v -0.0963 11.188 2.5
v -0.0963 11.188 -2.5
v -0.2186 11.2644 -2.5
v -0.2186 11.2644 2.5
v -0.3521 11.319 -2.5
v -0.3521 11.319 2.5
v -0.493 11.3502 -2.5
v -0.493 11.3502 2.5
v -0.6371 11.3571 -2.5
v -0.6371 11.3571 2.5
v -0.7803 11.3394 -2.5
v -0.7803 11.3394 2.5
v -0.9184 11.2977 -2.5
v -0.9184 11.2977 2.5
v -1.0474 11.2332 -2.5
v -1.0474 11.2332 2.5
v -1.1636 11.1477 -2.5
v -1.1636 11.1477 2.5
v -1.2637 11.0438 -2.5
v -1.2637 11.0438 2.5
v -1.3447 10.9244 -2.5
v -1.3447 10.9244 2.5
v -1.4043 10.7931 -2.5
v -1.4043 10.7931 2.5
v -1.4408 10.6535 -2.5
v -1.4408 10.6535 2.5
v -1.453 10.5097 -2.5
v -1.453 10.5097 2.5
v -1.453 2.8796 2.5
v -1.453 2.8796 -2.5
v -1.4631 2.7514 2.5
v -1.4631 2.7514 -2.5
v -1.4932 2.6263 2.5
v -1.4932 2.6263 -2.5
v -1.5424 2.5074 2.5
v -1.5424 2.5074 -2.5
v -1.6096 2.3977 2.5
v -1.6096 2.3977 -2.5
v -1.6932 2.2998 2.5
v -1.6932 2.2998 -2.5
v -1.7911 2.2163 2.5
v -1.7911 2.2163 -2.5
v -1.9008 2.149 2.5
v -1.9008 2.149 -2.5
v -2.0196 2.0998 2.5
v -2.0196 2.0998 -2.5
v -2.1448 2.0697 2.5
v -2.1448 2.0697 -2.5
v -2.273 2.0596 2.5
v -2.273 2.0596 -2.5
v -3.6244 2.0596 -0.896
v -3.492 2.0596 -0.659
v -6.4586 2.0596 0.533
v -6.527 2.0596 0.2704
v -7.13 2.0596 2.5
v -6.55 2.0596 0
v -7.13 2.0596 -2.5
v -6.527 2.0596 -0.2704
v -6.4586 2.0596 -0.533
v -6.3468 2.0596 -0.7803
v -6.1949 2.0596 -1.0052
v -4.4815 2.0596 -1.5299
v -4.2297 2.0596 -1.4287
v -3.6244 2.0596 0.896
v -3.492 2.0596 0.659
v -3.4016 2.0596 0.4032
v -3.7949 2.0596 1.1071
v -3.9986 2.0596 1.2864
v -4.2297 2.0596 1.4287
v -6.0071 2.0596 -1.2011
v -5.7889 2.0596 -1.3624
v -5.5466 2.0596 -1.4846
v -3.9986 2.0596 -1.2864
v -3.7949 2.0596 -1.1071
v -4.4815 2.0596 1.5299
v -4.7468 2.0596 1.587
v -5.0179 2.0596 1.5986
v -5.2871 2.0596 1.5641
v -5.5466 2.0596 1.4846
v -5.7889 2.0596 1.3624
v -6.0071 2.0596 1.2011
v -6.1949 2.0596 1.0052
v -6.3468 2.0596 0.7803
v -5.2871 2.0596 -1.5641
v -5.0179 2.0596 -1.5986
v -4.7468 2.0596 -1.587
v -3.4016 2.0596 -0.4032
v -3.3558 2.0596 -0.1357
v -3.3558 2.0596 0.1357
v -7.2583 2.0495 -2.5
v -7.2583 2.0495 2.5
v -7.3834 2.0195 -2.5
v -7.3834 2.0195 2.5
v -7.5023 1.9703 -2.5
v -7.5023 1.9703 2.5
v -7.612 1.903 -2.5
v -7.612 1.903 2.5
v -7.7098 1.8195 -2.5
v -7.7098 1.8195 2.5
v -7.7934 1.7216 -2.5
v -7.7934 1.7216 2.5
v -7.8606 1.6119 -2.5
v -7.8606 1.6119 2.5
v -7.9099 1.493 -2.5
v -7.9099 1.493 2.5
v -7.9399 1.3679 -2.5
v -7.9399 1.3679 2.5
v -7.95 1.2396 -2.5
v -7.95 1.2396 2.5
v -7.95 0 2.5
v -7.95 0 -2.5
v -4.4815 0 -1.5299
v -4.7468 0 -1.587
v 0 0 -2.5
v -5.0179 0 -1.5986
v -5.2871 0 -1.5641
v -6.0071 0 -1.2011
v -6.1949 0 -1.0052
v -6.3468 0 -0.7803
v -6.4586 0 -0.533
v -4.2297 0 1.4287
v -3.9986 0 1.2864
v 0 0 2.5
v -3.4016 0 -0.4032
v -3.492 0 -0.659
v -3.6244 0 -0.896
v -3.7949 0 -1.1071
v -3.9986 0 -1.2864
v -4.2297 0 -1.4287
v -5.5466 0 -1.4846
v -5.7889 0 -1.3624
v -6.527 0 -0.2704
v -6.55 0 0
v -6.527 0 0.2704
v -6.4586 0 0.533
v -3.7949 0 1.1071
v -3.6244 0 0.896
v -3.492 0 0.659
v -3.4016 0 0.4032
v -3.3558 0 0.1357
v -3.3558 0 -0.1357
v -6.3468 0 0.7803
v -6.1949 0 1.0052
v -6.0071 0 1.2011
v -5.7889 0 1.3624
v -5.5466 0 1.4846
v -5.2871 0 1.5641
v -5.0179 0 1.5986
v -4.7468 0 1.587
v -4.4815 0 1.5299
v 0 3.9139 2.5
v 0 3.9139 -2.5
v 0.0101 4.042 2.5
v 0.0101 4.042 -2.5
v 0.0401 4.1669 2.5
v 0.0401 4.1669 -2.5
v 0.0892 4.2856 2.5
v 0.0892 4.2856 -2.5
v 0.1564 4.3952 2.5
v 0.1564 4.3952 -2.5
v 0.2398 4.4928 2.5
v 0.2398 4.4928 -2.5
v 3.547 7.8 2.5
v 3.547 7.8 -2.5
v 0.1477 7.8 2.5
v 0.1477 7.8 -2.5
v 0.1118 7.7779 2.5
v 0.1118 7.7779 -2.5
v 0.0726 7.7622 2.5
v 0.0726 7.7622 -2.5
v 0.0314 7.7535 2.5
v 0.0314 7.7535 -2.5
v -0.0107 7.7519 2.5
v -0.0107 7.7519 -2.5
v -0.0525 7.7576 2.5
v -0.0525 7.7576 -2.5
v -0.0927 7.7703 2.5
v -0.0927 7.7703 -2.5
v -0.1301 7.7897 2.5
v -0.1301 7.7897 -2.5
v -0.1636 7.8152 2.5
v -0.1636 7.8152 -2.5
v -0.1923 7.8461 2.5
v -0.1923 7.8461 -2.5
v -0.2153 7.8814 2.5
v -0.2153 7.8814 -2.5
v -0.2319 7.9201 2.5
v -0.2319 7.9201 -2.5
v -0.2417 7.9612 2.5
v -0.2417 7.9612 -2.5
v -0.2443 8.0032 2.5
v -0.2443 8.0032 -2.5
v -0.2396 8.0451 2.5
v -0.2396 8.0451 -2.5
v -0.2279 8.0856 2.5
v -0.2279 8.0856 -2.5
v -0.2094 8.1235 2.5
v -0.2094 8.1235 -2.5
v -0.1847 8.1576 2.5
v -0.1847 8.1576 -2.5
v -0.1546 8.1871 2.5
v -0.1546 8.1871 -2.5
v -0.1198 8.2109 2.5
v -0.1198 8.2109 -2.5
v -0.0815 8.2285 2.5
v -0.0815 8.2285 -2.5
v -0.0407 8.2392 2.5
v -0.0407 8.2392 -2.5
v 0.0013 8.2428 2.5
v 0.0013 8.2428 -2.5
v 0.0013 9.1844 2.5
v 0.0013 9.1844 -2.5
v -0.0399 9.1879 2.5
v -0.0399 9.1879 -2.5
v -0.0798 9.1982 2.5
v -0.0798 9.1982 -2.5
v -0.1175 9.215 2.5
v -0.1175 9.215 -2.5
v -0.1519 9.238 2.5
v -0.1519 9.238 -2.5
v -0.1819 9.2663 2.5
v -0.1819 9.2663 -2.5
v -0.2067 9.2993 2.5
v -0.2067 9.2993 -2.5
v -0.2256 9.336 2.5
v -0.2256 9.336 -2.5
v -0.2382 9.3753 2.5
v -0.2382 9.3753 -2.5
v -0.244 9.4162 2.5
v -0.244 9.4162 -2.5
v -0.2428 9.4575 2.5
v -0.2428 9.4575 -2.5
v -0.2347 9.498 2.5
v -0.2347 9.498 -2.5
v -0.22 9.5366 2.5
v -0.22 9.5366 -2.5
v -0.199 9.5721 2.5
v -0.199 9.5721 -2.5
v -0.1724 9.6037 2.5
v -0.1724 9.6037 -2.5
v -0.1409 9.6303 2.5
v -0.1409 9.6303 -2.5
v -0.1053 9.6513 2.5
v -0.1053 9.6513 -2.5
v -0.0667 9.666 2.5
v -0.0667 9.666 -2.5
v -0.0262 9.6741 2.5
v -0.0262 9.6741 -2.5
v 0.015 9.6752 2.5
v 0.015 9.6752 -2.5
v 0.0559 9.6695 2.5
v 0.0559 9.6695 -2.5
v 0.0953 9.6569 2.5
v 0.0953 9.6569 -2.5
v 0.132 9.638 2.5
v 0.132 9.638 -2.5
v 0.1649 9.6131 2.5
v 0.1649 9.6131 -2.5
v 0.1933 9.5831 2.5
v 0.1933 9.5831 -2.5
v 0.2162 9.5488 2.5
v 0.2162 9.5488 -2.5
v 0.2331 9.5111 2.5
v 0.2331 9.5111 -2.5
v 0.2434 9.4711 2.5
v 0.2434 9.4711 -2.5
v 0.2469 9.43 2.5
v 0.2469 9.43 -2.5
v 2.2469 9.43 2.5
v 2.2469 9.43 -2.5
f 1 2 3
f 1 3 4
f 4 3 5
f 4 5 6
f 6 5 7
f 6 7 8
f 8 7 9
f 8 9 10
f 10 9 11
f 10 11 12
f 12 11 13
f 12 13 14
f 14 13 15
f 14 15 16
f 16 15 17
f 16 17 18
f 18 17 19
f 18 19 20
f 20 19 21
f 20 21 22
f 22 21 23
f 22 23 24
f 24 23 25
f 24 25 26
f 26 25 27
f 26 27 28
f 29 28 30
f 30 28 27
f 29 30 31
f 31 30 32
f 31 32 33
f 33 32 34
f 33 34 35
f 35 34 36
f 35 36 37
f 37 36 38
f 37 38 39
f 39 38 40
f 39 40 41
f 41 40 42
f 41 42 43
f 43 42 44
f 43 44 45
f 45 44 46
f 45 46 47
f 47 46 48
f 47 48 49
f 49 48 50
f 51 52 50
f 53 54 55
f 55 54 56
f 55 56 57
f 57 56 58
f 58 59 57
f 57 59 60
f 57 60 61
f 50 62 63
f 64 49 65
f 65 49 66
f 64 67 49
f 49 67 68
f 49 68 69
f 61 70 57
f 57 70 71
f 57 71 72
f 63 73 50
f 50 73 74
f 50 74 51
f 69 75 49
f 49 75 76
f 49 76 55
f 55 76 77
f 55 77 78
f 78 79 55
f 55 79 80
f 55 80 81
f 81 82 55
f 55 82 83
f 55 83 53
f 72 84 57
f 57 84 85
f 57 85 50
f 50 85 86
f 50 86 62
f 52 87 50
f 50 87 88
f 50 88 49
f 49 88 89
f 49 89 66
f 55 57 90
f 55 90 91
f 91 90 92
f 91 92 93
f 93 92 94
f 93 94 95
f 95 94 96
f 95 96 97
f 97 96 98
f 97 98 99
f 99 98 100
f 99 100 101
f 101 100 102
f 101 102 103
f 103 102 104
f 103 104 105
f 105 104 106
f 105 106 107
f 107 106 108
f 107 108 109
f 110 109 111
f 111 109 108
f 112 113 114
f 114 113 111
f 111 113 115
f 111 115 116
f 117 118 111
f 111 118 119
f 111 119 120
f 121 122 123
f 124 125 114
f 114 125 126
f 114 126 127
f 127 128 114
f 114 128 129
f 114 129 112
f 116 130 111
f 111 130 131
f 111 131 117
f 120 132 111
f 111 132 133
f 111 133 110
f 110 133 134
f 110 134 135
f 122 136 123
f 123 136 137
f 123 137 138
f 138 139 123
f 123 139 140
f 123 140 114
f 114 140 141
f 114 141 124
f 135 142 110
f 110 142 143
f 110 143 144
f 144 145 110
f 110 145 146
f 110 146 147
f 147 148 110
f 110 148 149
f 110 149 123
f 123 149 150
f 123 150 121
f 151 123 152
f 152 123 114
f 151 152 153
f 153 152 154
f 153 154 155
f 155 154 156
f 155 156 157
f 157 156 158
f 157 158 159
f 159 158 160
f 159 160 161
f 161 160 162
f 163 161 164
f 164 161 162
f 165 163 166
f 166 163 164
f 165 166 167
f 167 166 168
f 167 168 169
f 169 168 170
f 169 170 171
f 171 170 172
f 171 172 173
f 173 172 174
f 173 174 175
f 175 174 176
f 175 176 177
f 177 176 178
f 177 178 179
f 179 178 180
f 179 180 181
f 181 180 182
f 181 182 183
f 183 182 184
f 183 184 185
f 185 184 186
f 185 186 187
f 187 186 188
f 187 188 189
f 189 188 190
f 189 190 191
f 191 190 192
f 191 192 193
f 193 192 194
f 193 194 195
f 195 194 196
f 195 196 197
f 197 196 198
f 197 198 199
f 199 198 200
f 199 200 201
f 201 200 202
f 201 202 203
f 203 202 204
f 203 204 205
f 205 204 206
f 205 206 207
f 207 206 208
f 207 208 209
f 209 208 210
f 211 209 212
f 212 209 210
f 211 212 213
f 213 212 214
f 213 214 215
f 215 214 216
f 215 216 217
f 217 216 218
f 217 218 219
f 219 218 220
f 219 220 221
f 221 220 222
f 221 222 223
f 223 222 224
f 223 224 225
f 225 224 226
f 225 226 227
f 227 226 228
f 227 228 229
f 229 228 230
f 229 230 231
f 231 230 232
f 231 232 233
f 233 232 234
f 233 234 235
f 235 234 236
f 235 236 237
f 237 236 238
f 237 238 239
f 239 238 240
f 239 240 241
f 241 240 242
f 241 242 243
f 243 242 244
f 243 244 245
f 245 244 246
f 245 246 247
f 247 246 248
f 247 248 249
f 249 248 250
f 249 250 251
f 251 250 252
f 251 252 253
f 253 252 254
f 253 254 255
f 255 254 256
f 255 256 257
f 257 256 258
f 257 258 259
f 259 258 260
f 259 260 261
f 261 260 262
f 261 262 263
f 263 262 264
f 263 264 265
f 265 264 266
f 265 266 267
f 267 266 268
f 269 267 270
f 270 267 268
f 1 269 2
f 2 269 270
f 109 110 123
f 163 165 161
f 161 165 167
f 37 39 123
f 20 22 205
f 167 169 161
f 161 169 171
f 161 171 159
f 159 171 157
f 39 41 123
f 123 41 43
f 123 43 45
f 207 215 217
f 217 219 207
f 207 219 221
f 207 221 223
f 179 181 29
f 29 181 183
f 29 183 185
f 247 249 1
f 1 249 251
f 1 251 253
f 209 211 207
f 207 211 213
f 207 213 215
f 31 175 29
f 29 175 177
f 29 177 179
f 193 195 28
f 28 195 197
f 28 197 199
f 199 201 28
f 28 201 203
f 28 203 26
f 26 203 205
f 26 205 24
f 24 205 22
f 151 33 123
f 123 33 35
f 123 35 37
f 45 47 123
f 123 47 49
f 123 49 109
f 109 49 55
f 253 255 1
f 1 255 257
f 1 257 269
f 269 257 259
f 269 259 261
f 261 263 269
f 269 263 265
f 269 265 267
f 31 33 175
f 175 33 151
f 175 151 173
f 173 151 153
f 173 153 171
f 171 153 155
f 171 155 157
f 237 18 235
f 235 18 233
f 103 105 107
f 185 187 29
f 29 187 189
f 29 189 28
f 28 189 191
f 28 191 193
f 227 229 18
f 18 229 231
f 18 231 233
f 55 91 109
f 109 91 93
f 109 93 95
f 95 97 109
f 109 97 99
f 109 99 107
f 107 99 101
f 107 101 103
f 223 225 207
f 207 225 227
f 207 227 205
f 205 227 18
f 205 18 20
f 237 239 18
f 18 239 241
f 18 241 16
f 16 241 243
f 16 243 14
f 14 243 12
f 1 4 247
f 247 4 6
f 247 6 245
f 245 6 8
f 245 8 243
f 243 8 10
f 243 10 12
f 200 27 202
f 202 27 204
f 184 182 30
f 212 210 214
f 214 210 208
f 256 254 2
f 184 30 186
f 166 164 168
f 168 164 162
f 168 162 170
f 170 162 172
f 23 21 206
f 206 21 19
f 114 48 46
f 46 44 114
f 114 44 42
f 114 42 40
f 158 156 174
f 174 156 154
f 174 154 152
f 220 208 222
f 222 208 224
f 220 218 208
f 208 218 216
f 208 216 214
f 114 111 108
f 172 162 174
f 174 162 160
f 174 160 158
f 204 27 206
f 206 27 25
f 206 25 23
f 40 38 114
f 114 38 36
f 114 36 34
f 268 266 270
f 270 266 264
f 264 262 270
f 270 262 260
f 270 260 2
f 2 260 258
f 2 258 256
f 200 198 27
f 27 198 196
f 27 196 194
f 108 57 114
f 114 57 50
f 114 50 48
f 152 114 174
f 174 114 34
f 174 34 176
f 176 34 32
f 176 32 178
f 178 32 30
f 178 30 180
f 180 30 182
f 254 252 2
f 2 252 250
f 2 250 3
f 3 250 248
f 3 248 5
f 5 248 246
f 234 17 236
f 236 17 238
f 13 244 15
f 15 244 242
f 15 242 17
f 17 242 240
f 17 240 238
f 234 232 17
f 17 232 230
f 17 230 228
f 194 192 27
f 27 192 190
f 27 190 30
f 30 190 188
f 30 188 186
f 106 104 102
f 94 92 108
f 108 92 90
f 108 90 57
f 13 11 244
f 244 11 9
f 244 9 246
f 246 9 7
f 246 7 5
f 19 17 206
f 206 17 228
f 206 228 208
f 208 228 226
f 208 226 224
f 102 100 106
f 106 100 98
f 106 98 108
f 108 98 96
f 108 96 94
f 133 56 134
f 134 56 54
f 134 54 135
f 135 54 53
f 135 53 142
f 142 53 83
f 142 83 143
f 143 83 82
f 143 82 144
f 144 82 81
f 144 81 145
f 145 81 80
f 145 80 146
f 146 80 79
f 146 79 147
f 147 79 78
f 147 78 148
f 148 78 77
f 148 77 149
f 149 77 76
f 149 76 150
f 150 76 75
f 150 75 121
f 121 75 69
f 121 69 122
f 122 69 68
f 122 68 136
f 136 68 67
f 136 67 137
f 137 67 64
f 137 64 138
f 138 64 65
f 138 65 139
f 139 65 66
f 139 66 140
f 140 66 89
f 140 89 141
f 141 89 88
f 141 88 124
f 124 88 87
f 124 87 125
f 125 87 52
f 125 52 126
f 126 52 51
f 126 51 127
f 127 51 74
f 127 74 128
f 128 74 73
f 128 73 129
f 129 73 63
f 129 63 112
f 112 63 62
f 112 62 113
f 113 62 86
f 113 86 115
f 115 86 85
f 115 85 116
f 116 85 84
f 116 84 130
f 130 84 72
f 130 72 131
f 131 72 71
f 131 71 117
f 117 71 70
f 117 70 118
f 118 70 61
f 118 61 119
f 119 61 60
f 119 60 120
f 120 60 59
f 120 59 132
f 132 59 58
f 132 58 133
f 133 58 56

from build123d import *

# Parameters (mm, degrees)
BOSS_EXTRUDE1_DEPTH = 2.5
SKETCH4_R           = 1.6
CUT_EXTRUDE1_DEPTH  = 13.486214373


with BuildPart() as part:
    # Sketch3 → Boss-Extrude1 (new, symmetric)
    with BuildSketch(Plane.XY):
        with BuildLine():
            Line((-1.45304318, 2.879645015), (-1.45304318, 10.509737409))
            ThreePointArc((-1.45304318, 10.509737409), (-0.984259086, 11.268173328), (-0.096253627, 11.18798683))
            Line((-0.096253627, 11.18798683), (2.246891916, 9.43))
            Line((2.246891916, 9.43), (0.246891916, 9.43))
            ThreePointArc((0.246891916, 9.43), (-0.172404049, 9.603678075), (0.001274026, 9.18438211))
            Line((0.001274026, 9.18438211), (0.001274026, 8.242847777))
            ThreePointArc((0.001274026, 8.242847777), (-0.231933324, 7.920142408), (0.147658859, 7.8))
            Line((0.147658859, 7.8), (3.54695682, 7.8))
            Line((3.54695682, 7.8), (0.23979919, 4.492842832))
            ThreePointArc((0.23979919, 4.492842832), (0.062321779, 4.227229147), (0, 3.913916433))
            Line((0, 3.913916433), (0, 0))
            Line((0, 0), (-7.95, 0))
            Line((-7.95, 0), (-7.95, 1.239645015))
            ThreePointArc((-7.95, 1.239645015), (-7.709827561, 1.819472575), (-7.13, 2.059645015))
            Line((-7.13, 2.059645015), (-2.27304318, 2.059645015))
            ThreePointArc((-2.27304318, 2.059645015), (-1.69321562, 2.299817454), (-1.45304318, 2.879645015))
        make_face()
    extrude(amount=BOSS_EXTRUDE1_DEPTH, both=True)

    # Sketch4 → Cut-Extrude1 (cut, through all)
    with BuildSketch(Plane(origin=(0, 2.059645015, 0), x_dir=(1, 0, 0), z_dir=(0, 1, 0))):
        with Locations(Location((-4.95, 0, 0), (0, 0, 180))):
            Circle(SKETCH4_R)
    extrude(amount=-CUT_EXTRUDE1_DEPTH, mode=Mode.SUBTRACT)


solid = part.part
